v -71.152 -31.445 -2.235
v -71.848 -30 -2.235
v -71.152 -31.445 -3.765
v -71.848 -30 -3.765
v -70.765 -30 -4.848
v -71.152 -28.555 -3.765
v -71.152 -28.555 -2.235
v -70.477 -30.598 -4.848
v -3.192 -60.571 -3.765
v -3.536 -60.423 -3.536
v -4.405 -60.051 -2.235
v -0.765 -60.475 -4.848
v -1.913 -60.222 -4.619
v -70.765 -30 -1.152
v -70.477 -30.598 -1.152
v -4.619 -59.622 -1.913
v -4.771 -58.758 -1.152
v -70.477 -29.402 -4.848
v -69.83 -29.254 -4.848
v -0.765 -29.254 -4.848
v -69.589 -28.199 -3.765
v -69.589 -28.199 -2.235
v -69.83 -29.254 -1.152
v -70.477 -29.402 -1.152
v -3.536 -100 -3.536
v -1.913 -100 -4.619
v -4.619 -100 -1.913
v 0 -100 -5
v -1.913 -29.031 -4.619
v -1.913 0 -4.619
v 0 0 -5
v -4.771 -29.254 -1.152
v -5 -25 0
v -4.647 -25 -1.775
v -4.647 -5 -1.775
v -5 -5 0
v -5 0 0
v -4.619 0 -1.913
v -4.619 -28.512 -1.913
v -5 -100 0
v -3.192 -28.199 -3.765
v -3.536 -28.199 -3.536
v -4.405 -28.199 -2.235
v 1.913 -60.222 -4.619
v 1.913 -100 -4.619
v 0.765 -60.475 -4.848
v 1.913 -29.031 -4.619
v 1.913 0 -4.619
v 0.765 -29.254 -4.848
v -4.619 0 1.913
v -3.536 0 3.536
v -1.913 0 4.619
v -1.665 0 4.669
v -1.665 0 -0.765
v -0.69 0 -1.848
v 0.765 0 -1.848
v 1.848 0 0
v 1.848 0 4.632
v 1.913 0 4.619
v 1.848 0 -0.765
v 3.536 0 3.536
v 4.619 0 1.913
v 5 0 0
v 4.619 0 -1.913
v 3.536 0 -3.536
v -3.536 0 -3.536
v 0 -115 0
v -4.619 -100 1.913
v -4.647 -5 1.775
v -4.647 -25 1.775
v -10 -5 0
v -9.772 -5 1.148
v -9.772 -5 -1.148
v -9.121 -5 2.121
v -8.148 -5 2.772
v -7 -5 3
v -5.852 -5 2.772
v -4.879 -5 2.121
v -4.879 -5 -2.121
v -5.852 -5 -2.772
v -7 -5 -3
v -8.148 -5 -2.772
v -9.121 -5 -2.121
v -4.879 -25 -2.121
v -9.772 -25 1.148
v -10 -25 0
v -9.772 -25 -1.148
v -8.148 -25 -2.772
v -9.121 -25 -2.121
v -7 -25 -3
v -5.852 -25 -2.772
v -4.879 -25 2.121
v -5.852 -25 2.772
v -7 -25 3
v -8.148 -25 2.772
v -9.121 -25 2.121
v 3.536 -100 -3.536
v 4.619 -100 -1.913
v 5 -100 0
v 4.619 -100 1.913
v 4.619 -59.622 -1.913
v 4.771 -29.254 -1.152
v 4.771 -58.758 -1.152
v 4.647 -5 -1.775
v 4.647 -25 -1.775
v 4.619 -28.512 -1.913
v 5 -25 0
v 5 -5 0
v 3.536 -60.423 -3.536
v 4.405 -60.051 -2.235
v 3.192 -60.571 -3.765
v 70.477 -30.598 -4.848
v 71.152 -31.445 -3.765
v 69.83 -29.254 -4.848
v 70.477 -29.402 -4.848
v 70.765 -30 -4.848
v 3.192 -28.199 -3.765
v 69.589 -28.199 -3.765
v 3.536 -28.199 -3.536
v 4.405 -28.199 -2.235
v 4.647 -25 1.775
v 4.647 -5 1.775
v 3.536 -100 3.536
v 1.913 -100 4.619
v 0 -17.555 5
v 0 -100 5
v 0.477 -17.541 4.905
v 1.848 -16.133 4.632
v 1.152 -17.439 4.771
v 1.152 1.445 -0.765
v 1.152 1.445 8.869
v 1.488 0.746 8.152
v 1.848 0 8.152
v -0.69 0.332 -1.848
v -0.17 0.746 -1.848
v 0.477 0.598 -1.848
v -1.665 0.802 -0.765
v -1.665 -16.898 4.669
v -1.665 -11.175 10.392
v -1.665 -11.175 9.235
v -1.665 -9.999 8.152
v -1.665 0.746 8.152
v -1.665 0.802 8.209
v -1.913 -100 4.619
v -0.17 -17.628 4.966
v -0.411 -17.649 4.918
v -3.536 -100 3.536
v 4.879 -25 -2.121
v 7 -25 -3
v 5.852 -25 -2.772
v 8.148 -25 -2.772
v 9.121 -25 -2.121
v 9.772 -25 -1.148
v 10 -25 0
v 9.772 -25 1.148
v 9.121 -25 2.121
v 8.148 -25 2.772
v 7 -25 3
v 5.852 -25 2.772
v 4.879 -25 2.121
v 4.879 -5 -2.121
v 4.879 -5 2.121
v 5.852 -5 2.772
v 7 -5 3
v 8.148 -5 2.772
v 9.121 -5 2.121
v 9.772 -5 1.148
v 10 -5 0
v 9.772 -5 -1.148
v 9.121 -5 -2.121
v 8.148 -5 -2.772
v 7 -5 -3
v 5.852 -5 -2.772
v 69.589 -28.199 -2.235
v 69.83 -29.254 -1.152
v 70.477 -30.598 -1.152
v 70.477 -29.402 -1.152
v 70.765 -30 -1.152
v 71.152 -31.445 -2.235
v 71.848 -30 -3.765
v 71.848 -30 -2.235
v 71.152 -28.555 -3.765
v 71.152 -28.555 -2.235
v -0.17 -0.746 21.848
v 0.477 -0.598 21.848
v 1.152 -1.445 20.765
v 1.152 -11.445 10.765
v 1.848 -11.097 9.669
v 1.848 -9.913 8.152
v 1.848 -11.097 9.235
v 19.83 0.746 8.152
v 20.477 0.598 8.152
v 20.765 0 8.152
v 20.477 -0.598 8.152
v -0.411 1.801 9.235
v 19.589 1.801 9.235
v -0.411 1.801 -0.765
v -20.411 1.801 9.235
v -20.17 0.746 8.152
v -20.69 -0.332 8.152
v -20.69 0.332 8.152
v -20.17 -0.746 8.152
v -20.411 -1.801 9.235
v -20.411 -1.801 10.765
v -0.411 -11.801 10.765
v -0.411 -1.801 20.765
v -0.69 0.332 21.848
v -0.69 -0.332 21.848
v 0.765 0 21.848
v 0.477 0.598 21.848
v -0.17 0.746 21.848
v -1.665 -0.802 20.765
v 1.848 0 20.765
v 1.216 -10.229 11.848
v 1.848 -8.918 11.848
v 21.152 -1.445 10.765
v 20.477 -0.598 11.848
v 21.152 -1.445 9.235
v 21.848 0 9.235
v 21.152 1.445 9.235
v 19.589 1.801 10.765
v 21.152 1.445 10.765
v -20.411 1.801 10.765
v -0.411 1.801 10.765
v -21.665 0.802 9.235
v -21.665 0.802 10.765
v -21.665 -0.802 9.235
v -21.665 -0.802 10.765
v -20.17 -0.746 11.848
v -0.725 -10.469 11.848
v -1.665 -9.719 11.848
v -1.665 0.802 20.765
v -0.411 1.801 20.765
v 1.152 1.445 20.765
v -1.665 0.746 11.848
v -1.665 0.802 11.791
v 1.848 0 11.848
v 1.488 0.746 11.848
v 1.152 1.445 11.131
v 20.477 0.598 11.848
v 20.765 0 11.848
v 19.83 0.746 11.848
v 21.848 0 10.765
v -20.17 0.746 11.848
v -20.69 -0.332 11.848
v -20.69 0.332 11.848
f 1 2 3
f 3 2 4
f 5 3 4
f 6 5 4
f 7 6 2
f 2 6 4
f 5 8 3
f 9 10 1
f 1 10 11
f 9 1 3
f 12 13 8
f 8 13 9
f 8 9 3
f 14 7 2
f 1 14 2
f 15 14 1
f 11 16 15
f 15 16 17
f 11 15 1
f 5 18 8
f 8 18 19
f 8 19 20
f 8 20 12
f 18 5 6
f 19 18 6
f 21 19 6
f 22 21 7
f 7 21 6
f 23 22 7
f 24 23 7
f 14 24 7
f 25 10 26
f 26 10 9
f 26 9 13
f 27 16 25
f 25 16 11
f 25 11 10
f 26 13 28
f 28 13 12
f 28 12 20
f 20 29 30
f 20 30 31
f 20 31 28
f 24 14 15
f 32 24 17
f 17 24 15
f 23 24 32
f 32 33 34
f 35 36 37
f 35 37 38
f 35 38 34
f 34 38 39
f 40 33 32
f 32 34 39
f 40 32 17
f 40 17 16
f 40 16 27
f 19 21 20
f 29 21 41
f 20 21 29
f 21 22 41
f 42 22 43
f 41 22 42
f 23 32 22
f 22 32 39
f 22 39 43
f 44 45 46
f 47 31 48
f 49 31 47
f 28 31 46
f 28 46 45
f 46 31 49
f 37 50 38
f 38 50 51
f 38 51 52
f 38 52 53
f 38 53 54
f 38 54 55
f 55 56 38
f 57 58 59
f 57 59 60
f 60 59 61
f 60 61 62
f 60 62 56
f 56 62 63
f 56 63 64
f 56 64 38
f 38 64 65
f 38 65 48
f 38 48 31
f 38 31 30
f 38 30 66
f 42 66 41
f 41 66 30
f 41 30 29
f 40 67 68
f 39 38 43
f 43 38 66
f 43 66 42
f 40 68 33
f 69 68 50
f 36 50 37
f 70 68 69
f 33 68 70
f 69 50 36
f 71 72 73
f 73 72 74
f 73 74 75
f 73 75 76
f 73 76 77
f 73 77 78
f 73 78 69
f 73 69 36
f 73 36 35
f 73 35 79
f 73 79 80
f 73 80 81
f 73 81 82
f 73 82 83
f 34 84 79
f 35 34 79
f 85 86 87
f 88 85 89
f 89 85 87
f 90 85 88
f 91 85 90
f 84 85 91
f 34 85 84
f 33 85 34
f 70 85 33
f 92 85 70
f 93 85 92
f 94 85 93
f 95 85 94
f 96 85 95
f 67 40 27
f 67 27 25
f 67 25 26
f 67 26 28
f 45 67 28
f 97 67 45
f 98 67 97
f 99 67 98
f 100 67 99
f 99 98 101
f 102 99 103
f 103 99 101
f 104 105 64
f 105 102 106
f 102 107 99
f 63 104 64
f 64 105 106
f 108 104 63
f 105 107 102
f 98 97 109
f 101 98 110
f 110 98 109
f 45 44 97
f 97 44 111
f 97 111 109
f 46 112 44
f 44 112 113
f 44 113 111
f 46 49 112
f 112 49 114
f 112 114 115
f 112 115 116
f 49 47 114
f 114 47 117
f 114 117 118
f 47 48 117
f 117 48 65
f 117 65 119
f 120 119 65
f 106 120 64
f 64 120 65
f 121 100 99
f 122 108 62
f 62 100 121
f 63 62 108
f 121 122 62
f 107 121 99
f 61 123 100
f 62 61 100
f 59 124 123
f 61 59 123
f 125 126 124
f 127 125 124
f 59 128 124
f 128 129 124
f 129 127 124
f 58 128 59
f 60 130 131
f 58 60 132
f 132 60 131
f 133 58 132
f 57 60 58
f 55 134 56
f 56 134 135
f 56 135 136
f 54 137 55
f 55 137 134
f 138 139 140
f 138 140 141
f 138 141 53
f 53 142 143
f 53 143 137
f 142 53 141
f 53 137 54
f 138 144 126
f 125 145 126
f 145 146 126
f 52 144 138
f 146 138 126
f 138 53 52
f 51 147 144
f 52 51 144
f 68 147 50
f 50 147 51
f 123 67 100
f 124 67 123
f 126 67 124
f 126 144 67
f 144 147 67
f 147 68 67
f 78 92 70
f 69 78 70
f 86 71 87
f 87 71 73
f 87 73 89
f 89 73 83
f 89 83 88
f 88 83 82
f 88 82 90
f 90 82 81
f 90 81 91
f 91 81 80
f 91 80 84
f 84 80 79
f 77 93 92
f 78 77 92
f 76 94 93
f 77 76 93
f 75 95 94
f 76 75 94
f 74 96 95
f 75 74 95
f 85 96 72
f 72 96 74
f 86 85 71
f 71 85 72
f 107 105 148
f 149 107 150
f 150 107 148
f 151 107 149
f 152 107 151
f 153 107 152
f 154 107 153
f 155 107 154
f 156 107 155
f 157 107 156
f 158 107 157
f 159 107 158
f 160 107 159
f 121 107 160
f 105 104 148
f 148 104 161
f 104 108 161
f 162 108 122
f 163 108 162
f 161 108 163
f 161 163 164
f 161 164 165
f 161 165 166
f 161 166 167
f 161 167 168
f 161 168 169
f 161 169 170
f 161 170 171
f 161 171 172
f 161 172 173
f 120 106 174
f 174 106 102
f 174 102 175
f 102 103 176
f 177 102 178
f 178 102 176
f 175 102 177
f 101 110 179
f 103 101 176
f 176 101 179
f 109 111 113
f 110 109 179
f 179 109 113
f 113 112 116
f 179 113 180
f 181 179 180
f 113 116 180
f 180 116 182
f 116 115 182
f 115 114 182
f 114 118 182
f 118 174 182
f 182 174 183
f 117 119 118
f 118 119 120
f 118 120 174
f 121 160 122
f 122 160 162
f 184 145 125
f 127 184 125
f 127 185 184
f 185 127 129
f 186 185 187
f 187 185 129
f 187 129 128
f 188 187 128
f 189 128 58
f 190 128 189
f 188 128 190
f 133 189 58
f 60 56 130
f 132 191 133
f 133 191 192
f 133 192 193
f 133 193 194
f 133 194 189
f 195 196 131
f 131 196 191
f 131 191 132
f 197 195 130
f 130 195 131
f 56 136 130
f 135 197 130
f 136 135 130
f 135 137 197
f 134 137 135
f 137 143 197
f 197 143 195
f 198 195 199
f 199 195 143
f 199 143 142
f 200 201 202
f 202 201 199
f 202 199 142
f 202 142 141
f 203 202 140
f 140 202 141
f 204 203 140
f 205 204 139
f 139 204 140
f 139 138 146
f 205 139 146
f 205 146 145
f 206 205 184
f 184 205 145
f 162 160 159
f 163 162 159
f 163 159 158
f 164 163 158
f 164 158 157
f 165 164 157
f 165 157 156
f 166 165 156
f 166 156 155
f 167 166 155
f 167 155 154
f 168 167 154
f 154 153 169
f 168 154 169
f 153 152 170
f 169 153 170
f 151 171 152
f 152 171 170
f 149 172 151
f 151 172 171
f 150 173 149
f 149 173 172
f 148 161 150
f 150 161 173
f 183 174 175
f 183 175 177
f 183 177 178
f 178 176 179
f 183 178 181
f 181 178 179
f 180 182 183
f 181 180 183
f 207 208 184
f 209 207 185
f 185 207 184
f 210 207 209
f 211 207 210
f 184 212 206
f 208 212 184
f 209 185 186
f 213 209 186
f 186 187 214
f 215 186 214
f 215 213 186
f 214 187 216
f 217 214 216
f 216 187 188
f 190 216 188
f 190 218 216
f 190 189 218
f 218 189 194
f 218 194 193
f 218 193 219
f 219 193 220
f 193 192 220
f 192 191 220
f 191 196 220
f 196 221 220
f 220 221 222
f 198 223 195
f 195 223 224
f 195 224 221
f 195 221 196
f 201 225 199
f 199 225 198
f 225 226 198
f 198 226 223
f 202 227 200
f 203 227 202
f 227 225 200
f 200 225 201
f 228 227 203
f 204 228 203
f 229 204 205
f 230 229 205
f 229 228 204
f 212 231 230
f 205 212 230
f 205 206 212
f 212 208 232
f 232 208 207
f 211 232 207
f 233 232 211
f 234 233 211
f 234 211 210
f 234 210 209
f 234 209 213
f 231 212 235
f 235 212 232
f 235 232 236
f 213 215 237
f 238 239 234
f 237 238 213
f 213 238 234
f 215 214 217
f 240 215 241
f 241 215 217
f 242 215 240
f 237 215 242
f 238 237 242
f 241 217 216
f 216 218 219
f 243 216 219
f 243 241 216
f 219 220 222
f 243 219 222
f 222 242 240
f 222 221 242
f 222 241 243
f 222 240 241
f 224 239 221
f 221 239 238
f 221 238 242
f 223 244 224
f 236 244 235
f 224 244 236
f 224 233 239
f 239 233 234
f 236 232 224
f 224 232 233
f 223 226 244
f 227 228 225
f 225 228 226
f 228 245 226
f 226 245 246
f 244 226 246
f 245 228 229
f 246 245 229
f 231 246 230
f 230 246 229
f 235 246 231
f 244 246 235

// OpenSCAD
rotate( 90, [1,0,0] )
cylinder( r=5, h=100 );

translate( [0, -100,0] )
rotate( 90, [1,0,0] )
cylinder( r1=5, r2=0, h=15 );

module wing() {
	hull() {
		translate( [ 70, 0, 0 ] )
		sphere( r=2 );
	
		translate( [ 0, -30, 0 ] )
		sphere( r=2 );
	
		translate( [ 0, 0, 0 ] )
		sphere( r=2 );
	}	
}

translate( [0,-30,-3] ) {
	wing();
	mirror( [-1,0,0] ) wing();
}

hull() {
	translate( [ 0, -20, 0 ] )
	sphere( r=2 );

	translate( [ 0, 0, 20 ] )
	sphere( r=2 );

	translate( [ 0, 0, 0 ] )
	sphere( r=2 );
}	


translate( [0,0,10] )
hull() {
	translate( [ 0, -10, 0 ] )
	sphere( r=2 );

	translate( [ 20, 0, 0 ] )
	sphere( r=2 );

	translate( [ -20, 0, 0 ] )
	sphere( r=2 );
}	

translate( [7,-5,0] )
rotate( 90, [1,0,0] )
cylinder( r=3, h=20, $fn=16 );

translate( [-7,-5,0] )
rotate( 90, [1,0,0] )
cylinder( r=3, h=20, $fn=16 );
